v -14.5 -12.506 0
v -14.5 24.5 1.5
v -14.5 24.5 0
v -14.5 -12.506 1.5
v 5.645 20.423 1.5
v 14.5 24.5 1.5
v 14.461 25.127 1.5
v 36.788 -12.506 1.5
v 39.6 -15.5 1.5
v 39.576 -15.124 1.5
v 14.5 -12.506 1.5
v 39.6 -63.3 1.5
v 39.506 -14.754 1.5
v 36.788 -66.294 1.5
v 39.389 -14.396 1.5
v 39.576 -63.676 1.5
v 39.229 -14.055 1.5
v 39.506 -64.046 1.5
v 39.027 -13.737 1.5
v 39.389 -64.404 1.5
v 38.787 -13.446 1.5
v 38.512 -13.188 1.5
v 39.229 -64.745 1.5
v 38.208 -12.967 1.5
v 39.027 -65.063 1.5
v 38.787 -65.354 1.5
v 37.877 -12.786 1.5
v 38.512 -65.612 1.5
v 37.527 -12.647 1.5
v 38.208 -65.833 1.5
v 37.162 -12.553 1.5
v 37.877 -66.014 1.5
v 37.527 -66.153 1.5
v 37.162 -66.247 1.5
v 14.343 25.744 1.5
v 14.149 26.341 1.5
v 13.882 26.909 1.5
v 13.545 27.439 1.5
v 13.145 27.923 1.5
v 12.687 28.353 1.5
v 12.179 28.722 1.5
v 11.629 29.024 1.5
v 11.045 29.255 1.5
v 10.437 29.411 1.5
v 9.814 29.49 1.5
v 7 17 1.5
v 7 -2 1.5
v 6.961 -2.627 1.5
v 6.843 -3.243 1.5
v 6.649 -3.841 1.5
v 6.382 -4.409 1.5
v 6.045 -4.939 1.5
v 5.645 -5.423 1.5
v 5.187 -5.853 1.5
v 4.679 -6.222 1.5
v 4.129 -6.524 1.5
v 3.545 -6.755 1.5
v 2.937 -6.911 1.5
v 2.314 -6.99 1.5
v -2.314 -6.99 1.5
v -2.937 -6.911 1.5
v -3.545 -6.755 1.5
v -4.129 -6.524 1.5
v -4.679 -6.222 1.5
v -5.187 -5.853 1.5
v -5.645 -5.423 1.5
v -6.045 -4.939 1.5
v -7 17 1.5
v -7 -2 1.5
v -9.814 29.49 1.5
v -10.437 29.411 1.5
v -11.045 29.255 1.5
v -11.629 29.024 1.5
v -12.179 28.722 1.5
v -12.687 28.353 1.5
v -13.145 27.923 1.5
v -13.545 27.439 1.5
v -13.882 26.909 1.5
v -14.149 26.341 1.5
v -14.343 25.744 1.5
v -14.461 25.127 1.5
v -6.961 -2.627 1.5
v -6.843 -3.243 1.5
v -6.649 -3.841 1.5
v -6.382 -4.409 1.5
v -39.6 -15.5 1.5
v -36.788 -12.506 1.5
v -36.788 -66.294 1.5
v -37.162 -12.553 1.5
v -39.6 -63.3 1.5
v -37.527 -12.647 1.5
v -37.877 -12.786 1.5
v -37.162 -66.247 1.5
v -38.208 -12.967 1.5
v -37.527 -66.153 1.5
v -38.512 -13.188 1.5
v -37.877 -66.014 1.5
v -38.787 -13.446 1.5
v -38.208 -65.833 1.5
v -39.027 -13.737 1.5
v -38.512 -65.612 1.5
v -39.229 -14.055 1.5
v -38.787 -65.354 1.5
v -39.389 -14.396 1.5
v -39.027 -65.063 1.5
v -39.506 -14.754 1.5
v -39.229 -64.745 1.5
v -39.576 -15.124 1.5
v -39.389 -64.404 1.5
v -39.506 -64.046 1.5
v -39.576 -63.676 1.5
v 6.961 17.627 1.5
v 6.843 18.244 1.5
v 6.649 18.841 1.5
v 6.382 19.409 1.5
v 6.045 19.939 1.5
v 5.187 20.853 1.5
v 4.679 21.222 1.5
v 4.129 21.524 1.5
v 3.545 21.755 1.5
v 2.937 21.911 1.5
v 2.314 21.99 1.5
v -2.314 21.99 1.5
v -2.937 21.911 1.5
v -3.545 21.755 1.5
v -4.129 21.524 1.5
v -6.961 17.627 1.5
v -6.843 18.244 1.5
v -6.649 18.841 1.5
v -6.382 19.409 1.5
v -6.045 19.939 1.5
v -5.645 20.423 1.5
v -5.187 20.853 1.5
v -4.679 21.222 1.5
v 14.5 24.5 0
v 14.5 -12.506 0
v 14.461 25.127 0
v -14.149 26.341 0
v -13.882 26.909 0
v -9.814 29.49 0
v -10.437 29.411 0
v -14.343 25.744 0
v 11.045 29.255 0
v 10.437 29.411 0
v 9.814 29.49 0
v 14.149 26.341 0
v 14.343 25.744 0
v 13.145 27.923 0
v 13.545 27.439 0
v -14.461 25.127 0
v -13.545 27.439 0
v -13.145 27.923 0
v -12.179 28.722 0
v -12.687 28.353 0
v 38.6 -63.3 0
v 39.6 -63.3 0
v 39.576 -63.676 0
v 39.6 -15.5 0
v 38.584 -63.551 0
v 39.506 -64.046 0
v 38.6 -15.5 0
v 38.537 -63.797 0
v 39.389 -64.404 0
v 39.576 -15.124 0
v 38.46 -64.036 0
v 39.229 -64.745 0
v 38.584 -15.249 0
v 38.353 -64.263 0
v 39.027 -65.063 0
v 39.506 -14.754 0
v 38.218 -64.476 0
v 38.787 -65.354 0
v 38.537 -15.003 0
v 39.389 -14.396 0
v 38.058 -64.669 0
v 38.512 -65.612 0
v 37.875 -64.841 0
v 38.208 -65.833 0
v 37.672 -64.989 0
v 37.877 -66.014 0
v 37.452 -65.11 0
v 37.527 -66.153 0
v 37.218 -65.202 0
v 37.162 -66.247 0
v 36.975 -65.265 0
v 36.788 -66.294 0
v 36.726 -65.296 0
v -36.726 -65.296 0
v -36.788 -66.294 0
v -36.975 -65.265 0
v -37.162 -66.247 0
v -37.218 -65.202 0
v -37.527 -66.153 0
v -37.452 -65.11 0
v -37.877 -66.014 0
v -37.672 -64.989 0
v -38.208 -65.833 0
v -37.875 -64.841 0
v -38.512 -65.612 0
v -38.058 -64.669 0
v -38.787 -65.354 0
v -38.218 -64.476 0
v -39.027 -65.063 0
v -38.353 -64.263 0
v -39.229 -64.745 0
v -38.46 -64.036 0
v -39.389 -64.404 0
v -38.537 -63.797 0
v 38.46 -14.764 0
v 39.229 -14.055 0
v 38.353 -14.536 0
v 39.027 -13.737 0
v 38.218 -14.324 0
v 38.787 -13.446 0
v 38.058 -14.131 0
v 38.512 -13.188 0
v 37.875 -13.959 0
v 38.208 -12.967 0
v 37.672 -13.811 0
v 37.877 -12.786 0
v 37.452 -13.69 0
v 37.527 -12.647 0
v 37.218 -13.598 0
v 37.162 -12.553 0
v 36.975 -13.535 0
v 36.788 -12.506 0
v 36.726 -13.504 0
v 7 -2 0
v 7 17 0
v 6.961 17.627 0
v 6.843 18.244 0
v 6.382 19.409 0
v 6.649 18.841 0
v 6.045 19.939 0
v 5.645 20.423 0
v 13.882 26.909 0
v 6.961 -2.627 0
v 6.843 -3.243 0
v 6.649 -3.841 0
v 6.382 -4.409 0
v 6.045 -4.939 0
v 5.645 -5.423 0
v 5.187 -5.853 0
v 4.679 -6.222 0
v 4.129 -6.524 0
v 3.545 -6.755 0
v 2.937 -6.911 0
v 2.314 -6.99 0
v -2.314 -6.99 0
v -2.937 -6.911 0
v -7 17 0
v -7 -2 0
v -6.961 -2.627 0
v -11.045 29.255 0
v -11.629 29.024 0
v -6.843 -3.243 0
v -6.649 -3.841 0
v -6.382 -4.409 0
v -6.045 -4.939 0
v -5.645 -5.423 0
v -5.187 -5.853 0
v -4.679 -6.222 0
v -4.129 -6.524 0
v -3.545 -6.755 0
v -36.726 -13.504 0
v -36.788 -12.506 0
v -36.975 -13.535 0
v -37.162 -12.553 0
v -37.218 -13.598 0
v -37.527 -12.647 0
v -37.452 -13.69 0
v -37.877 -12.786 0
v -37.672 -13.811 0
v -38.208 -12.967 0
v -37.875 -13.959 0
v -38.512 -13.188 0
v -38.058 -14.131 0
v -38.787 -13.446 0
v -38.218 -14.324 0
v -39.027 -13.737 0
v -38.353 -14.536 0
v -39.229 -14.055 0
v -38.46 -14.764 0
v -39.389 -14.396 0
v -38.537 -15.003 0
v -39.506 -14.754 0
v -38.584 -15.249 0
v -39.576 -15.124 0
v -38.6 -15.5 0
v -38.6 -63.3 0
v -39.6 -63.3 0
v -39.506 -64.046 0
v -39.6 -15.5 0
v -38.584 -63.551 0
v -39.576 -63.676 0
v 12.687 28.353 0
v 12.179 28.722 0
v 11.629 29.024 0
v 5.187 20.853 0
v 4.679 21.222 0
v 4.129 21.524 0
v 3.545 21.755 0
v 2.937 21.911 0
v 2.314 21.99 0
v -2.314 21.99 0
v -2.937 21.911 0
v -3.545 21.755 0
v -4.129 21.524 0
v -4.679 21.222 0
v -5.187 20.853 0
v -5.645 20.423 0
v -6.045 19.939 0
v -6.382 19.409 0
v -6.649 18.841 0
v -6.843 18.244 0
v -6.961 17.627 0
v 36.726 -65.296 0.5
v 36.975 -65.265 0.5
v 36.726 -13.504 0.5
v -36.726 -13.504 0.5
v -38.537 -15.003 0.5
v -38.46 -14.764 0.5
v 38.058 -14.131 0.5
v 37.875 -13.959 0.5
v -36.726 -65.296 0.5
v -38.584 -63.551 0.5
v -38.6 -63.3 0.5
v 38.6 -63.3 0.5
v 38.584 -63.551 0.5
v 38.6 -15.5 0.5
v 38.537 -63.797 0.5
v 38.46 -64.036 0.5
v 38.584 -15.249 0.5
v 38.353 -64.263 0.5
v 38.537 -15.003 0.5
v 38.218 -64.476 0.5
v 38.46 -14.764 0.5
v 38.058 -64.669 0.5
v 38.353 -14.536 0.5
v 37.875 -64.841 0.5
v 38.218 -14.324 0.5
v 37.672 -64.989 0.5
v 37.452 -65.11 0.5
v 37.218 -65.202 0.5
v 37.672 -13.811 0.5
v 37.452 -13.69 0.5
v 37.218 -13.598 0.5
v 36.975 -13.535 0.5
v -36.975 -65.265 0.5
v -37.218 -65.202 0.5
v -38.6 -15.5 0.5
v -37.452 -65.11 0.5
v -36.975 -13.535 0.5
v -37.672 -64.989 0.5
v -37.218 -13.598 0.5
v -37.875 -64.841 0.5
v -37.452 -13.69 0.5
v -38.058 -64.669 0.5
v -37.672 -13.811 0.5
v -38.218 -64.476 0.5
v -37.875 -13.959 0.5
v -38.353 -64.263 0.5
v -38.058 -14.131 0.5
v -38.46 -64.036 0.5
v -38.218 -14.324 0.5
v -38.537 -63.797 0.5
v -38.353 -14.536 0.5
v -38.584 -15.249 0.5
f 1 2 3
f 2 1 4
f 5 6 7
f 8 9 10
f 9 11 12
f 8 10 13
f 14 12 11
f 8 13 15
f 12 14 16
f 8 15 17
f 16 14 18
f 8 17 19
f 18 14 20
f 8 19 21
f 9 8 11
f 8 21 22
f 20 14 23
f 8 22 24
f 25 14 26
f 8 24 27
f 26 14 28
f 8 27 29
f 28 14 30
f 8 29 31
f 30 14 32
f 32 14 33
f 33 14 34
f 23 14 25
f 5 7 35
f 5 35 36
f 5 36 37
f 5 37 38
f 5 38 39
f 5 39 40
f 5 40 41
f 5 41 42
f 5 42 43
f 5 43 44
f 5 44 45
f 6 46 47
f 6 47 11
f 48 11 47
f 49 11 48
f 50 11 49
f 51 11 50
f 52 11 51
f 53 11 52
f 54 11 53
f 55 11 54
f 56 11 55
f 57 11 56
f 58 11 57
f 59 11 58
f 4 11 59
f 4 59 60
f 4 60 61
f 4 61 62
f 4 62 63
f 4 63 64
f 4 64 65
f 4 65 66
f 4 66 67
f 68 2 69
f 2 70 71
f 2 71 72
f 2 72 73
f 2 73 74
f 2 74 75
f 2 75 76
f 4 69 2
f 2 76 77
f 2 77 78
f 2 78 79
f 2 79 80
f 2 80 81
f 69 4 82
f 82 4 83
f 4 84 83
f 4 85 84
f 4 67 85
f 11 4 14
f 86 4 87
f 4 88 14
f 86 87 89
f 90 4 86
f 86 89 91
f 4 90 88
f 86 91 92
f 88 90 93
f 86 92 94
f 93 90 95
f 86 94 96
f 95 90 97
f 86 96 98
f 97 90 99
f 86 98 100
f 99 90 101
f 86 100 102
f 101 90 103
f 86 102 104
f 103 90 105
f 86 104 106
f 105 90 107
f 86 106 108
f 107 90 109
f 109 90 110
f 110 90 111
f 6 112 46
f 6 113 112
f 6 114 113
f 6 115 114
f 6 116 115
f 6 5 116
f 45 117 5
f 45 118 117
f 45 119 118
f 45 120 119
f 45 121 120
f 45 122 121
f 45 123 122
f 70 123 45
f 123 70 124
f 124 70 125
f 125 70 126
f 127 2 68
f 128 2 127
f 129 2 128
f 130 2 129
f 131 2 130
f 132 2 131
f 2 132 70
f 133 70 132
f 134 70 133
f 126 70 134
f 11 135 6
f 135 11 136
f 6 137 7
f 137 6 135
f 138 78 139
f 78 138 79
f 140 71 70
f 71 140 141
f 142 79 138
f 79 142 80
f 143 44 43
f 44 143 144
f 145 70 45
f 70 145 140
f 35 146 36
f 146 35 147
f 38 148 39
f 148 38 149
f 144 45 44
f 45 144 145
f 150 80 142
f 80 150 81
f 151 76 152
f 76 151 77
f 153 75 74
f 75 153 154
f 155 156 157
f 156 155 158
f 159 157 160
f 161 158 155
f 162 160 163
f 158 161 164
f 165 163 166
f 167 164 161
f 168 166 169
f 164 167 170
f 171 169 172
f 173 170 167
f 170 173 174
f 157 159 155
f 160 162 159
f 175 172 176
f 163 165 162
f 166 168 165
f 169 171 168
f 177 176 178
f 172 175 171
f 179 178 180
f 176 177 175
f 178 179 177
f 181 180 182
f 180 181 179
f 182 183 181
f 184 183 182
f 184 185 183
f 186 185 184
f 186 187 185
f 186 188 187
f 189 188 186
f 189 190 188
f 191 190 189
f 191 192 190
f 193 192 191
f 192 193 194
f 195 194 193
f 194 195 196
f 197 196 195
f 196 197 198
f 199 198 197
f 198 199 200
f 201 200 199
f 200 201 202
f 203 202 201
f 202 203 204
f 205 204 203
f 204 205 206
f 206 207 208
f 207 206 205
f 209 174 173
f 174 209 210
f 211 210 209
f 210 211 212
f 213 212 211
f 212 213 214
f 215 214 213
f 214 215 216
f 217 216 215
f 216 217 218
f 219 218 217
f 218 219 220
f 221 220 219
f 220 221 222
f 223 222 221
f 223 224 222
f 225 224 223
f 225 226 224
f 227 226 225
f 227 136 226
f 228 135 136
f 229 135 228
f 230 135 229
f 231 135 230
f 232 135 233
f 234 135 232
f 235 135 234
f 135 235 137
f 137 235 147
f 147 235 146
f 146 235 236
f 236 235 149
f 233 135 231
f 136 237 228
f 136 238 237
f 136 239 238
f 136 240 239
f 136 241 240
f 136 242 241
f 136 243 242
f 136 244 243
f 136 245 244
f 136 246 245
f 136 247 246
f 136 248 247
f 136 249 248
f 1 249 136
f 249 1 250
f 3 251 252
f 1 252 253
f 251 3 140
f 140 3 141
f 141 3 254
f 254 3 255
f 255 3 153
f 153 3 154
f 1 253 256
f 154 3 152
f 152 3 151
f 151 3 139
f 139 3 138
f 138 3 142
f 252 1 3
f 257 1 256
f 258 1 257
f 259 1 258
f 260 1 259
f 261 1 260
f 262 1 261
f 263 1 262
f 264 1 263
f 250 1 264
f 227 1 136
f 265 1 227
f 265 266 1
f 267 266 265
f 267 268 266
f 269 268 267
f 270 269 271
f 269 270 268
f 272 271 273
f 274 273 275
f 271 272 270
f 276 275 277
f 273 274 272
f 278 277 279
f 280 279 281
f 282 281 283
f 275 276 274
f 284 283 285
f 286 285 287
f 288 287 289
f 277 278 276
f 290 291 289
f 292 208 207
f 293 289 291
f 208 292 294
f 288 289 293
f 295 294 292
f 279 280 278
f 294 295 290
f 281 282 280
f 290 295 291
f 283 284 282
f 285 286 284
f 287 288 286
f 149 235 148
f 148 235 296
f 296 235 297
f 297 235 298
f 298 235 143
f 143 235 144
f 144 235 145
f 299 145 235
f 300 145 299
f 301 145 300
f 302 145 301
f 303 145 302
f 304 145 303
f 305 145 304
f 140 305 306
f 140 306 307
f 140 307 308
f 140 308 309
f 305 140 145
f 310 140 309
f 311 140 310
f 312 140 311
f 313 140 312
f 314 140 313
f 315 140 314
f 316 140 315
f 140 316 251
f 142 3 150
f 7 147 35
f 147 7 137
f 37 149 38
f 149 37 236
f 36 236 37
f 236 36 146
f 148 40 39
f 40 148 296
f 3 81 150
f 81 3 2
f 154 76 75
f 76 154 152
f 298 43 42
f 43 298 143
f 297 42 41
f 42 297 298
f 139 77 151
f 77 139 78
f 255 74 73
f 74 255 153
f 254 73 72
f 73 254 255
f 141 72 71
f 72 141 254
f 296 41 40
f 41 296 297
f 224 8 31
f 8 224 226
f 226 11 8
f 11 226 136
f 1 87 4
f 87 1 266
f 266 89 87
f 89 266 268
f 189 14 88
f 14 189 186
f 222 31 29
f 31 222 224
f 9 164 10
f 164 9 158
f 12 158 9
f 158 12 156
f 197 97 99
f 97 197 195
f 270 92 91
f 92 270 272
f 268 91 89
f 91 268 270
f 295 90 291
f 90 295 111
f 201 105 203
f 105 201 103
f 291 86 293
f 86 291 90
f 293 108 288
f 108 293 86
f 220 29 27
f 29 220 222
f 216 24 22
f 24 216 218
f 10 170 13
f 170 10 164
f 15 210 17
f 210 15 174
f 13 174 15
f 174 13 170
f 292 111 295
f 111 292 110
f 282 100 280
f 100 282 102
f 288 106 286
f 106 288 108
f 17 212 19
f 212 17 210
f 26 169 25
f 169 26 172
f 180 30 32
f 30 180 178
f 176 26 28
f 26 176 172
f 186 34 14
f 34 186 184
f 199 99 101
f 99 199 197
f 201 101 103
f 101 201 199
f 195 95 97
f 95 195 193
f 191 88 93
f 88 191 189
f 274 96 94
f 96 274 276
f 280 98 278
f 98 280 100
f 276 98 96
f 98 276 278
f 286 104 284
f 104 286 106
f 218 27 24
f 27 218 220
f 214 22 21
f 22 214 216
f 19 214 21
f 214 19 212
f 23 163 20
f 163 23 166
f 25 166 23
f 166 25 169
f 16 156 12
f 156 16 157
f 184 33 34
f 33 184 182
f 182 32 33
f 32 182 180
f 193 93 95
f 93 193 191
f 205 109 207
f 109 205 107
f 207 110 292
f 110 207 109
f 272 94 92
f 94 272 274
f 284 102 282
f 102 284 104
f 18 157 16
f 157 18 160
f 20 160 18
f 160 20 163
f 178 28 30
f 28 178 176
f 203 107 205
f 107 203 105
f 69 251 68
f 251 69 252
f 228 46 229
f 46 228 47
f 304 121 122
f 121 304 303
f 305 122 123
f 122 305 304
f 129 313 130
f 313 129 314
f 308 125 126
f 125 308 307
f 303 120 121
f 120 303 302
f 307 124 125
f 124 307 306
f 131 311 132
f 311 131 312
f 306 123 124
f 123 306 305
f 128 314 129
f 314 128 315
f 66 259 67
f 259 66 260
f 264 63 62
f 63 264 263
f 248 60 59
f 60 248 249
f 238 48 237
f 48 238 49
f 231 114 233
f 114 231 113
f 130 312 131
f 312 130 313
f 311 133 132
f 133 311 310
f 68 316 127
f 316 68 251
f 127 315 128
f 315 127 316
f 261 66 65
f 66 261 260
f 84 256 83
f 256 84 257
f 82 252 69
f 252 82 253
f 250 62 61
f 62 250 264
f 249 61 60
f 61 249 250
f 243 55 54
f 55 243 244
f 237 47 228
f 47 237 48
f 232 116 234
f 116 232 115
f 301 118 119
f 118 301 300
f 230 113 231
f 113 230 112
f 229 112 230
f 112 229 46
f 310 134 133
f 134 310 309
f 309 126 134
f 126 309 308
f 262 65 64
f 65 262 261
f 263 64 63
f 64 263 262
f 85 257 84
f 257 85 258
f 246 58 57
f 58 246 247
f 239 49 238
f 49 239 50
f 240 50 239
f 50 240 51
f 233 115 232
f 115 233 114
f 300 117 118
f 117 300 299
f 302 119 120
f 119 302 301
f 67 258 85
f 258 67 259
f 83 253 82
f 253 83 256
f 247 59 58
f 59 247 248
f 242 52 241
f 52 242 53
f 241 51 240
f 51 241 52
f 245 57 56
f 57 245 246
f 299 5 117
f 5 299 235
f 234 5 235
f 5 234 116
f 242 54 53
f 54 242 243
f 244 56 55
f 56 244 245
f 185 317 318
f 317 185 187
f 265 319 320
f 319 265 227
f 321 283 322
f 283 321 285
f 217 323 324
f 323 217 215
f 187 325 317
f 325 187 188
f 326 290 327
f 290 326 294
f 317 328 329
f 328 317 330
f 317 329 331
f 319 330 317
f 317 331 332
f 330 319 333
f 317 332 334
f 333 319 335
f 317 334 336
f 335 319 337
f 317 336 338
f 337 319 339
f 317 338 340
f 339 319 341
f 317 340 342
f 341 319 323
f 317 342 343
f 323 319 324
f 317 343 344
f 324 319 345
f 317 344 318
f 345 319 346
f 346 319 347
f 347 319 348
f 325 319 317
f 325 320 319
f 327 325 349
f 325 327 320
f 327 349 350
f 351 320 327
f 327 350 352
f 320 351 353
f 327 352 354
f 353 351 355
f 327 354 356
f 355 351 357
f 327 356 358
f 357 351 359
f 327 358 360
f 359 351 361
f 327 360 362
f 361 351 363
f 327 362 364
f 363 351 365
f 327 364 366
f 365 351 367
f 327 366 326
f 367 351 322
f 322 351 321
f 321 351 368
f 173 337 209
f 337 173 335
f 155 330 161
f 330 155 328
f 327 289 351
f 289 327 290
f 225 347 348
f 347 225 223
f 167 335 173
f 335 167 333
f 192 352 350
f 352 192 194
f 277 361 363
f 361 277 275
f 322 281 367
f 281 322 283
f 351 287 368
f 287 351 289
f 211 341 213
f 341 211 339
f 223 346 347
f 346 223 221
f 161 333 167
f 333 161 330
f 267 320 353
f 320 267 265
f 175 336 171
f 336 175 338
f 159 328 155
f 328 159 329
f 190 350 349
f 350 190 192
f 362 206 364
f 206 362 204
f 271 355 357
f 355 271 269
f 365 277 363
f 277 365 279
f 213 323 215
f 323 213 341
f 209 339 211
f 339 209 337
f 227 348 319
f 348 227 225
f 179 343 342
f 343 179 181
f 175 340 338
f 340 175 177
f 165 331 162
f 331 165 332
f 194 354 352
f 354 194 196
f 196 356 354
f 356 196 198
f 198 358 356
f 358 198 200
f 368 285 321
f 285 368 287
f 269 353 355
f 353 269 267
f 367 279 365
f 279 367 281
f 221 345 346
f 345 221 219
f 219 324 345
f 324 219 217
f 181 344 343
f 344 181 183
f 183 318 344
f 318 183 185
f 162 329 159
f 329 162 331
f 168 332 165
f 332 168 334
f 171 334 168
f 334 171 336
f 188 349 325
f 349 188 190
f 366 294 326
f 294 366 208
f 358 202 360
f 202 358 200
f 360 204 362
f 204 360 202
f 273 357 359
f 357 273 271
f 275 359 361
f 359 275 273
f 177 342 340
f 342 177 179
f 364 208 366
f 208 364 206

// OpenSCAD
$fn = 50;


difference() {
	union() {
		hull() {
			translate(v = [-9.5000000000, 24.5000000000, 0]) {
				cylinder(h = 1.5000000000, r = 5);
			}
			translate(v = [9.5000000000, 24.5000000000, 0]) {
				cylinder(h = 1.5000000000, r = 5);
			}
			translate(v = [-9.5000000000, -24.5000000000, 0]) {
				cylinder(h = 1.5000000000, r = 5);
			}
			translate(v = [9.5000000000, -24.5000000000, 0]) {
				cylinder(h = 1.5000000000, r = 5);
			}
		}
		translate(v = [0, -39.4000000000, 0]) {
			hull() {
				translate(v = [-36.6000000000, 23.9000000000, 0]) {
					cylinder(h = 1.5000000000, r = 3.0000000000);
				}
				translate(v = [36.6000000000, 23.9000000000, 0]) {
					cylinder(h = 1.5000000000, r = 3.0000000000);
				}
				translate(v = [-36.6000000000, -23.9000000000, 0]) {
					cylinder(h = 1.5000000000, r = 3.0000000000);
				}
				translate(v = [36.6000000000, -23.9000000000, 0]) {
					cylinder(h = 1.5000000000, r = 3.0000000000);
				}
			}
		}
	}
	union() {
		translate(v = [0, 7.5000000000, 0]) {
			hull() {
				translate(v = [-2.0000000000, 9.5000000000, 0]) {
					cylinder(h = 1.5000000000, r = 5);
				}
				translate(v = [2.0000000000, 9.5000000000, 0]) {
					cylinder(h = 1.5000000000, r = 5);
				}
				translate(v = [-2.0000000000, -9.5000000000, 0]) {
					cylinder(h = 1.5000000000, r = 5);
				}
				translate(v = [2.0000000000, -9.5000000000, 0]) {
					cylinder(h = 1.5000000000, r = 5);
				}
			}
		}
		translate(v = [0, -39.4000000000, 0]) {
			#hull() {
				translate(v = [-36.6000000000, 23.9000000000, 0]) {
					cylinder(h = 0.5000000000, r = 2.0000000000);
				}
				translate(v = [36.6000000000, 23.9000000000, 0]) {
					cylinder(h = 0.5000000000, r = 2.0000000000);
				}
				translate(v = [-36.6000000000, -23.9000000000, 0]) {
					cylinder(h = 0.5000000000, r = 2.0000000000);
				}
				translate(v = [36.6000000000, -23.9000000000, 0]) {
					cylinder(h = 0.5000000000, r = 2.0000000000);
				}
			}
		}
	}
}
